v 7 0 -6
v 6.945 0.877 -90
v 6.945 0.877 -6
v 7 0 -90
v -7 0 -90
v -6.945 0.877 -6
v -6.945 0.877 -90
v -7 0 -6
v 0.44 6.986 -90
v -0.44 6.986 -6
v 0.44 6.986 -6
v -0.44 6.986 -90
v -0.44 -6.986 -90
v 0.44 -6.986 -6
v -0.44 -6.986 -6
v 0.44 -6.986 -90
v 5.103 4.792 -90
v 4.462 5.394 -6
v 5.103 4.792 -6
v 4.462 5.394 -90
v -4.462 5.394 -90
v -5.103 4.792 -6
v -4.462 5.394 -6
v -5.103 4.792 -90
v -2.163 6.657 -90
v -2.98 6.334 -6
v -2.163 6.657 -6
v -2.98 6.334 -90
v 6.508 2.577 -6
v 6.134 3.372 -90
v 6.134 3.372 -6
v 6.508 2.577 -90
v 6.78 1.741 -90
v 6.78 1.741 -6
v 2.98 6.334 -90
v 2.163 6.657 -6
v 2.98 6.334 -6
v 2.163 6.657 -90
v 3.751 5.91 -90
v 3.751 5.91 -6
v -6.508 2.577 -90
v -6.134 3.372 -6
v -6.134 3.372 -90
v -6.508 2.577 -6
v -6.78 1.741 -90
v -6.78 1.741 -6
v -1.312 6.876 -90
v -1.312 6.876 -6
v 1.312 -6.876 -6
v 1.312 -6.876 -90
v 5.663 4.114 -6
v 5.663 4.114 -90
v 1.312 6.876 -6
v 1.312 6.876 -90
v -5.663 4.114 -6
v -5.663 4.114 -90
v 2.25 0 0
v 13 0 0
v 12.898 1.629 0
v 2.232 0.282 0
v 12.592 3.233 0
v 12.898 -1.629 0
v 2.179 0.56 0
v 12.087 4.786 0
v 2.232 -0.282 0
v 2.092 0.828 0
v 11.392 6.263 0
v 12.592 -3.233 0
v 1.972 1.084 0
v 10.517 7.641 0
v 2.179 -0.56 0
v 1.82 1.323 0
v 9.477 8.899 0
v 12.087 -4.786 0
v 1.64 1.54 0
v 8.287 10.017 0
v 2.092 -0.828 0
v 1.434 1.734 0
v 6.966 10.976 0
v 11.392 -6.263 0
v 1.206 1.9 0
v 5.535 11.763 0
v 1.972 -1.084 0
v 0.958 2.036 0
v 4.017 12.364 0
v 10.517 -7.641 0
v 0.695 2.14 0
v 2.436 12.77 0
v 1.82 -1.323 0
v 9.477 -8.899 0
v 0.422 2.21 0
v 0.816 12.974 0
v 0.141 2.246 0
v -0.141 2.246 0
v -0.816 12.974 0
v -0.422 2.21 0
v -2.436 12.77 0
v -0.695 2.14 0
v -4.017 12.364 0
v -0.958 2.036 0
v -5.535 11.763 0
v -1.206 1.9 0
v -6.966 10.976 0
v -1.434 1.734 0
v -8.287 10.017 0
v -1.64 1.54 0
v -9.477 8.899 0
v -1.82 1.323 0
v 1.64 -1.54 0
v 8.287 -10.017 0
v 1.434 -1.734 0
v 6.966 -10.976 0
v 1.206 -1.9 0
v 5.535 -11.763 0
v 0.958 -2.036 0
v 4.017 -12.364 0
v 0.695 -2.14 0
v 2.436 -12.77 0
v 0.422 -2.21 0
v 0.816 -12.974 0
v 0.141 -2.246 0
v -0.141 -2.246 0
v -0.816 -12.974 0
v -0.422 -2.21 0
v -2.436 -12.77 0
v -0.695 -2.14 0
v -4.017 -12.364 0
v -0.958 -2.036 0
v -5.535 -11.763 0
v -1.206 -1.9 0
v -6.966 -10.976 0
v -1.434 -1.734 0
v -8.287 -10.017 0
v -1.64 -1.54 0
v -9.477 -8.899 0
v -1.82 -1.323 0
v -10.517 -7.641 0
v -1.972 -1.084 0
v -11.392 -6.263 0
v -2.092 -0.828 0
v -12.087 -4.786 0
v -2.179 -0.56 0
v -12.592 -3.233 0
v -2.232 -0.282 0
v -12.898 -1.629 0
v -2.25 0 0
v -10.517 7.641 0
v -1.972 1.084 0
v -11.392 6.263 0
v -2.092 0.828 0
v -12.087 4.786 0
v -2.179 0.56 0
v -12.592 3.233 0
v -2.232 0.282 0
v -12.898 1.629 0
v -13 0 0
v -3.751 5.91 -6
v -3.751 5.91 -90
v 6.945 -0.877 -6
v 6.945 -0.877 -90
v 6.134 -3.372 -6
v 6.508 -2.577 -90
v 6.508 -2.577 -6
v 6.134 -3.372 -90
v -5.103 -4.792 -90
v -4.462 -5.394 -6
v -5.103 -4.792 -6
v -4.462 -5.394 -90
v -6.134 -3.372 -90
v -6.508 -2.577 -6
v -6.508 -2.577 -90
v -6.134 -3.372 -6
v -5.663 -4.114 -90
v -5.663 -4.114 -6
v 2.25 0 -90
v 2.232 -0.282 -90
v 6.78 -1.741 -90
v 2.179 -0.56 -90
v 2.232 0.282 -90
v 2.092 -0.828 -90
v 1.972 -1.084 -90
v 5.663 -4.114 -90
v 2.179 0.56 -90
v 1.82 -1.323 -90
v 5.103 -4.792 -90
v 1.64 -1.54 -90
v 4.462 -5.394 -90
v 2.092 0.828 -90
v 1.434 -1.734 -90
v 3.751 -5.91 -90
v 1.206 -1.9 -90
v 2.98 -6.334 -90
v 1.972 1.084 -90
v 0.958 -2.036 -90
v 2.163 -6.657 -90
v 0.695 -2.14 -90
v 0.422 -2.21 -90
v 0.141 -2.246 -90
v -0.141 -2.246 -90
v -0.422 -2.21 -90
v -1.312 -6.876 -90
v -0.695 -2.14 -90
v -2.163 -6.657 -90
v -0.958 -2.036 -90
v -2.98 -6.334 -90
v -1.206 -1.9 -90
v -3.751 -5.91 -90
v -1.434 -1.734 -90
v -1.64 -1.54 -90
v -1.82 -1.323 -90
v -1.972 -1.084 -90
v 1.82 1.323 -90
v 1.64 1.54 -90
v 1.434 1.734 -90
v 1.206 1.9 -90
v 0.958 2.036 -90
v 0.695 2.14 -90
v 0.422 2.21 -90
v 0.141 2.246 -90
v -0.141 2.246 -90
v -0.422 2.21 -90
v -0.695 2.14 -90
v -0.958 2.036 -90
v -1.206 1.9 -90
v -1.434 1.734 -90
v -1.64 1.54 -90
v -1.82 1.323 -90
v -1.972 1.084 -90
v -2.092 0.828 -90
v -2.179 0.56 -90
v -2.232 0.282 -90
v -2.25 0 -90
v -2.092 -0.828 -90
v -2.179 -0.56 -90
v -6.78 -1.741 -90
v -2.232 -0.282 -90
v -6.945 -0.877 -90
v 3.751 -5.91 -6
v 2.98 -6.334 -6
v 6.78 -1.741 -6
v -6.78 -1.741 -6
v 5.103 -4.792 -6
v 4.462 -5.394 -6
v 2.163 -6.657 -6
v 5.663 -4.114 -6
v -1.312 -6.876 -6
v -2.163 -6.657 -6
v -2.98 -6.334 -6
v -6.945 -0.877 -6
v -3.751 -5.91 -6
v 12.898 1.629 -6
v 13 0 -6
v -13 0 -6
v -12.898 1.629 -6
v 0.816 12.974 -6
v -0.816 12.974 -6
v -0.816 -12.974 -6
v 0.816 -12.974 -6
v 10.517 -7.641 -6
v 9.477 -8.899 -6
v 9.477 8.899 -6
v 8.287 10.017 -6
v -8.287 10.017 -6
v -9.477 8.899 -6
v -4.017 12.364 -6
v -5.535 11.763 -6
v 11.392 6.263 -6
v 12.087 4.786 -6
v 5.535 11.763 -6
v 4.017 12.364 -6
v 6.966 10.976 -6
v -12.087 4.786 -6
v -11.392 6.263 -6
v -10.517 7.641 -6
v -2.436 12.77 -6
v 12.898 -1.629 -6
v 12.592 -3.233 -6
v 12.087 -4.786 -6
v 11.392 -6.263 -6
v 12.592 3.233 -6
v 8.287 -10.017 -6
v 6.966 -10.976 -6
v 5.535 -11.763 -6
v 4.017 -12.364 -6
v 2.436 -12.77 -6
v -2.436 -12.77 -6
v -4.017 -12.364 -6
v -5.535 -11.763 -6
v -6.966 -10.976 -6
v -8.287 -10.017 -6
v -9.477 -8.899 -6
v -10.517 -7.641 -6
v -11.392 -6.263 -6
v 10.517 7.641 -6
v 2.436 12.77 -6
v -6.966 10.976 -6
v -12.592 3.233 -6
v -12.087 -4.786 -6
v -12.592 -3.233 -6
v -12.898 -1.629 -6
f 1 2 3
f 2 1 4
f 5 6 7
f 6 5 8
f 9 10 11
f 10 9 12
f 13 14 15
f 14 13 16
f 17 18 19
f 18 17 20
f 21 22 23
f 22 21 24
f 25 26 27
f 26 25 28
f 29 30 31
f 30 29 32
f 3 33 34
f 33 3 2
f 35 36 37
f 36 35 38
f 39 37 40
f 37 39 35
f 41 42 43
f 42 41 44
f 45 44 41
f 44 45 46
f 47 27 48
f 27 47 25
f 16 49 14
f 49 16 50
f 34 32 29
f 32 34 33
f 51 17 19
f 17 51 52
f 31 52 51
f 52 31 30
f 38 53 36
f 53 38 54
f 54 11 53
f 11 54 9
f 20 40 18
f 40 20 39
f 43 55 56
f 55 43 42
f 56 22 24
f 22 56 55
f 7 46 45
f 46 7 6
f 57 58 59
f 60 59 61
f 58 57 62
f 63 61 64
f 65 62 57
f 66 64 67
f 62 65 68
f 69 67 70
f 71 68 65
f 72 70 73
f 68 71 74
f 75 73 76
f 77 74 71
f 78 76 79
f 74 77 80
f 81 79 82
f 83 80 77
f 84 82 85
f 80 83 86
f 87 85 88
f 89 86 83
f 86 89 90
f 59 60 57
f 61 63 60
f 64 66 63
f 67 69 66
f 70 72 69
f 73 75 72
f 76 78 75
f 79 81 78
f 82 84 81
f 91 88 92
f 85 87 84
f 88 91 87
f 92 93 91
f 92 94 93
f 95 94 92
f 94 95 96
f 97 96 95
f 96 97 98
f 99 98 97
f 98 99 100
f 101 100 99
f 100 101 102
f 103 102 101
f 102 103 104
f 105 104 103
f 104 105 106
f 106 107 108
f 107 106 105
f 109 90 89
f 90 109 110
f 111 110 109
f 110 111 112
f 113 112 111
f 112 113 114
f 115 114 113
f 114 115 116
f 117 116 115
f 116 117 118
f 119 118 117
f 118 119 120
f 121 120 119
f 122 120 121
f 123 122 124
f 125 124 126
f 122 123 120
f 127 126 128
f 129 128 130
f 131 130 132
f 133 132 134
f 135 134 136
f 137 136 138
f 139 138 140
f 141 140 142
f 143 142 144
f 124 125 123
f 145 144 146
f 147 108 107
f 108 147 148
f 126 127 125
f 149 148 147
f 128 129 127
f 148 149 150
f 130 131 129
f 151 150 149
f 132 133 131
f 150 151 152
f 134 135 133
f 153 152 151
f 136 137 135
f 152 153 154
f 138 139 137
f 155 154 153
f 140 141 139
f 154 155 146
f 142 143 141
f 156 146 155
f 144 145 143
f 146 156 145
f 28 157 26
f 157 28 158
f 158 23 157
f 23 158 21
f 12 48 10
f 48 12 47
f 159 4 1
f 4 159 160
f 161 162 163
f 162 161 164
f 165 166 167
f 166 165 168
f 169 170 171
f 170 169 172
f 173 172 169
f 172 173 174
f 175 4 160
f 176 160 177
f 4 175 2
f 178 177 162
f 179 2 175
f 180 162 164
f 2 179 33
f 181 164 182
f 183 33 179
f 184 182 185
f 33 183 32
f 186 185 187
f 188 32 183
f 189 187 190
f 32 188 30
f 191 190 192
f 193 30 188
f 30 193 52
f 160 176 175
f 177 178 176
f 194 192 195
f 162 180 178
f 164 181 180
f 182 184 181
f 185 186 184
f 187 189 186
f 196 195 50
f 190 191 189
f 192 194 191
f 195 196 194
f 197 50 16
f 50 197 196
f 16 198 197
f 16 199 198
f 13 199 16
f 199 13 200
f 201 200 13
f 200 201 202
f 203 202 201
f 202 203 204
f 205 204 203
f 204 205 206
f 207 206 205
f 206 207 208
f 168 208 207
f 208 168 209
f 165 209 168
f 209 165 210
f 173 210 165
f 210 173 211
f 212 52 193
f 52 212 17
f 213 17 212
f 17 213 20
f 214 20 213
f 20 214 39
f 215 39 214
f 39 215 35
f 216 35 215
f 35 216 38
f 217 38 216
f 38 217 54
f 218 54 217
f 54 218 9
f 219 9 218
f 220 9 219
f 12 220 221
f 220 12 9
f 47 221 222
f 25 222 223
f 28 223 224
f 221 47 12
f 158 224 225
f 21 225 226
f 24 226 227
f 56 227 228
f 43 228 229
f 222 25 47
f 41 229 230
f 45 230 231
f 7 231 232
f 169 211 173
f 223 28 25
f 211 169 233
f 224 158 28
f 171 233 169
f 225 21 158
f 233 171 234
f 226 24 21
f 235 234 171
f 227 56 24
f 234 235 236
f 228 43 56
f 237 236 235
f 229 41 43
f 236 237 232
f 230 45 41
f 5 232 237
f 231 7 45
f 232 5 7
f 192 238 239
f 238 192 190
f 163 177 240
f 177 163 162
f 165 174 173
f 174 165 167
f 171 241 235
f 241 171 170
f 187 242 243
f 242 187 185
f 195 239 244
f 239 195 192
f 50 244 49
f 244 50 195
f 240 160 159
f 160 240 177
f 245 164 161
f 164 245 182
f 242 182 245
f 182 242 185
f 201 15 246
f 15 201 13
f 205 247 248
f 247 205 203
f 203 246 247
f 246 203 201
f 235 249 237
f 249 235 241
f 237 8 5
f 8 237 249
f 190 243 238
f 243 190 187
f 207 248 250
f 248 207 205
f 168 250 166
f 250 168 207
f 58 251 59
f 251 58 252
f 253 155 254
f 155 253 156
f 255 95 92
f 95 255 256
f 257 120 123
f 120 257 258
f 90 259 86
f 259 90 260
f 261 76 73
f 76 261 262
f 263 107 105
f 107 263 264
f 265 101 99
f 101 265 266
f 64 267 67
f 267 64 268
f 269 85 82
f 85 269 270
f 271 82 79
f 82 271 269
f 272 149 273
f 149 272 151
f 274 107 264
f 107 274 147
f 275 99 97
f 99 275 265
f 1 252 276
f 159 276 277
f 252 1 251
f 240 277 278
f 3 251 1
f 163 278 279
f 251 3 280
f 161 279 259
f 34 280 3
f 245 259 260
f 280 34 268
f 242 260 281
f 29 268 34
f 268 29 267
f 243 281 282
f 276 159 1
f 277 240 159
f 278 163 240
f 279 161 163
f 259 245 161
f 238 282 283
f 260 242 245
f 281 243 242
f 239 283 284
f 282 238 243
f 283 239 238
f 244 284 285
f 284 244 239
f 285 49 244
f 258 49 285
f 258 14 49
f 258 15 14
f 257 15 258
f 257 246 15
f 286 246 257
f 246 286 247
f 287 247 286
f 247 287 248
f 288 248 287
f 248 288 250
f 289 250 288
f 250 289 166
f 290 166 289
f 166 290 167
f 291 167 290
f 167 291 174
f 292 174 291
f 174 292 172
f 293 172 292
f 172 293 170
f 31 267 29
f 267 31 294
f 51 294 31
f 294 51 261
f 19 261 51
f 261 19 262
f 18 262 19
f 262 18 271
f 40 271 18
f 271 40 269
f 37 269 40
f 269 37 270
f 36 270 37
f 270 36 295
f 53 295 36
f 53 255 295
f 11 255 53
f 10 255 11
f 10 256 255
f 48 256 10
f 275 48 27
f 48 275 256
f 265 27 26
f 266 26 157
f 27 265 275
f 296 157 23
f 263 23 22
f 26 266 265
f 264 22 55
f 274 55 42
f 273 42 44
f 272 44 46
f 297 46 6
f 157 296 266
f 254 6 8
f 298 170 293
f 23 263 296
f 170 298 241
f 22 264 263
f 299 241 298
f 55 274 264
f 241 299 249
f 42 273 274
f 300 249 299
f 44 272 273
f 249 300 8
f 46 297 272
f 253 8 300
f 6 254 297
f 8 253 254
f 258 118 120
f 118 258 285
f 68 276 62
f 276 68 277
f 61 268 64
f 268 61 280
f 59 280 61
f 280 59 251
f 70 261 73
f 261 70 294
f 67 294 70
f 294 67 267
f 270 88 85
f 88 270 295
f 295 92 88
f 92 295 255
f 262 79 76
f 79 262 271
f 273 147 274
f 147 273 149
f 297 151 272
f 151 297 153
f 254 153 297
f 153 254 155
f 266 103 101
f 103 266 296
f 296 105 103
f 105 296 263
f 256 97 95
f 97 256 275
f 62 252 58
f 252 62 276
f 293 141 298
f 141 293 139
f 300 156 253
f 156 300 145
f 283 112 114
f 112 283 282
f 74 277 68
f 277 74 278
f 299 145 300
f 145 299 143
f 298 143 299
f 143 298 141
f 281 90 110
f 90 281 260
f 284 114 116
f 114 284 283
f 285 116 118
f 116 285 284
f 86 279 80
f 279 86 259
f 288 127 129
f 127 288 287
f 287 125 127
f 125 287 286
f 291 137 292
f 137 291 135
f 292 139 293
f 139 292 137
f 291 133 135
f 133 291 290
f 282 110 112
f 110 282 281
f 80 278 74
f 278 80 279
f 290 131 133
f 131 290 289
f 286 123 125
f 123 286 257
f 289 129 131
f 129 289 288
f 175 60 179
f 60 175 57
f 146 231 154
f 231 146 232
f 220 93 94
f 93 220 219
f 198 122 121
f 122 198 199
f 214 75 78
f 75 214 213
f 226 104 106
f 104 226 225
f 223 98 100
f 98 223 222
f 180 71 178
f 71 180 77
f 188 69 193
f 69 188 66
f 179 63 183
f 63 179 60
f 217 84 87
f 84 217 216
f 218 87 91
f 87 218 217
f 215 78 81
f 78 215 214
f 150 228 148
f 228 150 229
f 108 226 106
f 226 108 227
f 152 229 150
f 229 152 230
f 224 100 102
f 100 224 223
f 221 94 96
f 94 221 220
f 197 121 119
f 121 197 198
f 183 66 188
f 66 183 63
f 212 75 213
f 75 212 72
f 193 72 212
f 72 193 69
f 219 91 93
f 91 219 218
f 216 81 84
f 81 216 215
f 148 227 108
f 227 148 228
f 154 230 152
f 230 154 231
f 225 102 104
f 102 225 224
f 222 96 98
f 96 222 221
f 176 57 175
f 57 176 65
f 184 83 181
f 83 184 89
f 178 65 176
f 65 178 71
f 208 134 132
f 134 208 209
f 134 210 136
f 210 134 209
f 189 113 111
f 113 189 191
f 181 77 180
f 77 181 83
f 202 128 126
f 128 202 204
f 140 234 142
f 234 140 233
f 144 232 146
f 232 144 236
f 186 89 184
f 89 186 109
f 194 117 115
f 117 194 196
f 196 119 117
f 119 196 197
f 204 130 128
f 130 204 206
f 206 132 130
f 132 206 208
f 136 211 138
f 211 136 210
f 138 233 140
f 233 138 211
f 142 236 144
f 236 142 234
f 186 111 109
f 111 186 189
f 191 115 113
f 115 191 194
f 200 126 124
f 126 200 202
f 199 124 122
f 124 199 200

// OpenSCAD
$fn = 50;


difference() {
	union() {
		translate(v = [0, 0, -90.0000000000]) {
			cylinder(h = 90, r = 7.0000000000);
		}
		translate(v = [0, 0, -6.0000000000]) {
			cylinder(h = 6, r = 13.0000000000);
		}
	}
	union() {
		#translate(v = [0, 0, -90]) {
			cylinder(h = 90, r = 2.2500000000);
		}
	}
}
